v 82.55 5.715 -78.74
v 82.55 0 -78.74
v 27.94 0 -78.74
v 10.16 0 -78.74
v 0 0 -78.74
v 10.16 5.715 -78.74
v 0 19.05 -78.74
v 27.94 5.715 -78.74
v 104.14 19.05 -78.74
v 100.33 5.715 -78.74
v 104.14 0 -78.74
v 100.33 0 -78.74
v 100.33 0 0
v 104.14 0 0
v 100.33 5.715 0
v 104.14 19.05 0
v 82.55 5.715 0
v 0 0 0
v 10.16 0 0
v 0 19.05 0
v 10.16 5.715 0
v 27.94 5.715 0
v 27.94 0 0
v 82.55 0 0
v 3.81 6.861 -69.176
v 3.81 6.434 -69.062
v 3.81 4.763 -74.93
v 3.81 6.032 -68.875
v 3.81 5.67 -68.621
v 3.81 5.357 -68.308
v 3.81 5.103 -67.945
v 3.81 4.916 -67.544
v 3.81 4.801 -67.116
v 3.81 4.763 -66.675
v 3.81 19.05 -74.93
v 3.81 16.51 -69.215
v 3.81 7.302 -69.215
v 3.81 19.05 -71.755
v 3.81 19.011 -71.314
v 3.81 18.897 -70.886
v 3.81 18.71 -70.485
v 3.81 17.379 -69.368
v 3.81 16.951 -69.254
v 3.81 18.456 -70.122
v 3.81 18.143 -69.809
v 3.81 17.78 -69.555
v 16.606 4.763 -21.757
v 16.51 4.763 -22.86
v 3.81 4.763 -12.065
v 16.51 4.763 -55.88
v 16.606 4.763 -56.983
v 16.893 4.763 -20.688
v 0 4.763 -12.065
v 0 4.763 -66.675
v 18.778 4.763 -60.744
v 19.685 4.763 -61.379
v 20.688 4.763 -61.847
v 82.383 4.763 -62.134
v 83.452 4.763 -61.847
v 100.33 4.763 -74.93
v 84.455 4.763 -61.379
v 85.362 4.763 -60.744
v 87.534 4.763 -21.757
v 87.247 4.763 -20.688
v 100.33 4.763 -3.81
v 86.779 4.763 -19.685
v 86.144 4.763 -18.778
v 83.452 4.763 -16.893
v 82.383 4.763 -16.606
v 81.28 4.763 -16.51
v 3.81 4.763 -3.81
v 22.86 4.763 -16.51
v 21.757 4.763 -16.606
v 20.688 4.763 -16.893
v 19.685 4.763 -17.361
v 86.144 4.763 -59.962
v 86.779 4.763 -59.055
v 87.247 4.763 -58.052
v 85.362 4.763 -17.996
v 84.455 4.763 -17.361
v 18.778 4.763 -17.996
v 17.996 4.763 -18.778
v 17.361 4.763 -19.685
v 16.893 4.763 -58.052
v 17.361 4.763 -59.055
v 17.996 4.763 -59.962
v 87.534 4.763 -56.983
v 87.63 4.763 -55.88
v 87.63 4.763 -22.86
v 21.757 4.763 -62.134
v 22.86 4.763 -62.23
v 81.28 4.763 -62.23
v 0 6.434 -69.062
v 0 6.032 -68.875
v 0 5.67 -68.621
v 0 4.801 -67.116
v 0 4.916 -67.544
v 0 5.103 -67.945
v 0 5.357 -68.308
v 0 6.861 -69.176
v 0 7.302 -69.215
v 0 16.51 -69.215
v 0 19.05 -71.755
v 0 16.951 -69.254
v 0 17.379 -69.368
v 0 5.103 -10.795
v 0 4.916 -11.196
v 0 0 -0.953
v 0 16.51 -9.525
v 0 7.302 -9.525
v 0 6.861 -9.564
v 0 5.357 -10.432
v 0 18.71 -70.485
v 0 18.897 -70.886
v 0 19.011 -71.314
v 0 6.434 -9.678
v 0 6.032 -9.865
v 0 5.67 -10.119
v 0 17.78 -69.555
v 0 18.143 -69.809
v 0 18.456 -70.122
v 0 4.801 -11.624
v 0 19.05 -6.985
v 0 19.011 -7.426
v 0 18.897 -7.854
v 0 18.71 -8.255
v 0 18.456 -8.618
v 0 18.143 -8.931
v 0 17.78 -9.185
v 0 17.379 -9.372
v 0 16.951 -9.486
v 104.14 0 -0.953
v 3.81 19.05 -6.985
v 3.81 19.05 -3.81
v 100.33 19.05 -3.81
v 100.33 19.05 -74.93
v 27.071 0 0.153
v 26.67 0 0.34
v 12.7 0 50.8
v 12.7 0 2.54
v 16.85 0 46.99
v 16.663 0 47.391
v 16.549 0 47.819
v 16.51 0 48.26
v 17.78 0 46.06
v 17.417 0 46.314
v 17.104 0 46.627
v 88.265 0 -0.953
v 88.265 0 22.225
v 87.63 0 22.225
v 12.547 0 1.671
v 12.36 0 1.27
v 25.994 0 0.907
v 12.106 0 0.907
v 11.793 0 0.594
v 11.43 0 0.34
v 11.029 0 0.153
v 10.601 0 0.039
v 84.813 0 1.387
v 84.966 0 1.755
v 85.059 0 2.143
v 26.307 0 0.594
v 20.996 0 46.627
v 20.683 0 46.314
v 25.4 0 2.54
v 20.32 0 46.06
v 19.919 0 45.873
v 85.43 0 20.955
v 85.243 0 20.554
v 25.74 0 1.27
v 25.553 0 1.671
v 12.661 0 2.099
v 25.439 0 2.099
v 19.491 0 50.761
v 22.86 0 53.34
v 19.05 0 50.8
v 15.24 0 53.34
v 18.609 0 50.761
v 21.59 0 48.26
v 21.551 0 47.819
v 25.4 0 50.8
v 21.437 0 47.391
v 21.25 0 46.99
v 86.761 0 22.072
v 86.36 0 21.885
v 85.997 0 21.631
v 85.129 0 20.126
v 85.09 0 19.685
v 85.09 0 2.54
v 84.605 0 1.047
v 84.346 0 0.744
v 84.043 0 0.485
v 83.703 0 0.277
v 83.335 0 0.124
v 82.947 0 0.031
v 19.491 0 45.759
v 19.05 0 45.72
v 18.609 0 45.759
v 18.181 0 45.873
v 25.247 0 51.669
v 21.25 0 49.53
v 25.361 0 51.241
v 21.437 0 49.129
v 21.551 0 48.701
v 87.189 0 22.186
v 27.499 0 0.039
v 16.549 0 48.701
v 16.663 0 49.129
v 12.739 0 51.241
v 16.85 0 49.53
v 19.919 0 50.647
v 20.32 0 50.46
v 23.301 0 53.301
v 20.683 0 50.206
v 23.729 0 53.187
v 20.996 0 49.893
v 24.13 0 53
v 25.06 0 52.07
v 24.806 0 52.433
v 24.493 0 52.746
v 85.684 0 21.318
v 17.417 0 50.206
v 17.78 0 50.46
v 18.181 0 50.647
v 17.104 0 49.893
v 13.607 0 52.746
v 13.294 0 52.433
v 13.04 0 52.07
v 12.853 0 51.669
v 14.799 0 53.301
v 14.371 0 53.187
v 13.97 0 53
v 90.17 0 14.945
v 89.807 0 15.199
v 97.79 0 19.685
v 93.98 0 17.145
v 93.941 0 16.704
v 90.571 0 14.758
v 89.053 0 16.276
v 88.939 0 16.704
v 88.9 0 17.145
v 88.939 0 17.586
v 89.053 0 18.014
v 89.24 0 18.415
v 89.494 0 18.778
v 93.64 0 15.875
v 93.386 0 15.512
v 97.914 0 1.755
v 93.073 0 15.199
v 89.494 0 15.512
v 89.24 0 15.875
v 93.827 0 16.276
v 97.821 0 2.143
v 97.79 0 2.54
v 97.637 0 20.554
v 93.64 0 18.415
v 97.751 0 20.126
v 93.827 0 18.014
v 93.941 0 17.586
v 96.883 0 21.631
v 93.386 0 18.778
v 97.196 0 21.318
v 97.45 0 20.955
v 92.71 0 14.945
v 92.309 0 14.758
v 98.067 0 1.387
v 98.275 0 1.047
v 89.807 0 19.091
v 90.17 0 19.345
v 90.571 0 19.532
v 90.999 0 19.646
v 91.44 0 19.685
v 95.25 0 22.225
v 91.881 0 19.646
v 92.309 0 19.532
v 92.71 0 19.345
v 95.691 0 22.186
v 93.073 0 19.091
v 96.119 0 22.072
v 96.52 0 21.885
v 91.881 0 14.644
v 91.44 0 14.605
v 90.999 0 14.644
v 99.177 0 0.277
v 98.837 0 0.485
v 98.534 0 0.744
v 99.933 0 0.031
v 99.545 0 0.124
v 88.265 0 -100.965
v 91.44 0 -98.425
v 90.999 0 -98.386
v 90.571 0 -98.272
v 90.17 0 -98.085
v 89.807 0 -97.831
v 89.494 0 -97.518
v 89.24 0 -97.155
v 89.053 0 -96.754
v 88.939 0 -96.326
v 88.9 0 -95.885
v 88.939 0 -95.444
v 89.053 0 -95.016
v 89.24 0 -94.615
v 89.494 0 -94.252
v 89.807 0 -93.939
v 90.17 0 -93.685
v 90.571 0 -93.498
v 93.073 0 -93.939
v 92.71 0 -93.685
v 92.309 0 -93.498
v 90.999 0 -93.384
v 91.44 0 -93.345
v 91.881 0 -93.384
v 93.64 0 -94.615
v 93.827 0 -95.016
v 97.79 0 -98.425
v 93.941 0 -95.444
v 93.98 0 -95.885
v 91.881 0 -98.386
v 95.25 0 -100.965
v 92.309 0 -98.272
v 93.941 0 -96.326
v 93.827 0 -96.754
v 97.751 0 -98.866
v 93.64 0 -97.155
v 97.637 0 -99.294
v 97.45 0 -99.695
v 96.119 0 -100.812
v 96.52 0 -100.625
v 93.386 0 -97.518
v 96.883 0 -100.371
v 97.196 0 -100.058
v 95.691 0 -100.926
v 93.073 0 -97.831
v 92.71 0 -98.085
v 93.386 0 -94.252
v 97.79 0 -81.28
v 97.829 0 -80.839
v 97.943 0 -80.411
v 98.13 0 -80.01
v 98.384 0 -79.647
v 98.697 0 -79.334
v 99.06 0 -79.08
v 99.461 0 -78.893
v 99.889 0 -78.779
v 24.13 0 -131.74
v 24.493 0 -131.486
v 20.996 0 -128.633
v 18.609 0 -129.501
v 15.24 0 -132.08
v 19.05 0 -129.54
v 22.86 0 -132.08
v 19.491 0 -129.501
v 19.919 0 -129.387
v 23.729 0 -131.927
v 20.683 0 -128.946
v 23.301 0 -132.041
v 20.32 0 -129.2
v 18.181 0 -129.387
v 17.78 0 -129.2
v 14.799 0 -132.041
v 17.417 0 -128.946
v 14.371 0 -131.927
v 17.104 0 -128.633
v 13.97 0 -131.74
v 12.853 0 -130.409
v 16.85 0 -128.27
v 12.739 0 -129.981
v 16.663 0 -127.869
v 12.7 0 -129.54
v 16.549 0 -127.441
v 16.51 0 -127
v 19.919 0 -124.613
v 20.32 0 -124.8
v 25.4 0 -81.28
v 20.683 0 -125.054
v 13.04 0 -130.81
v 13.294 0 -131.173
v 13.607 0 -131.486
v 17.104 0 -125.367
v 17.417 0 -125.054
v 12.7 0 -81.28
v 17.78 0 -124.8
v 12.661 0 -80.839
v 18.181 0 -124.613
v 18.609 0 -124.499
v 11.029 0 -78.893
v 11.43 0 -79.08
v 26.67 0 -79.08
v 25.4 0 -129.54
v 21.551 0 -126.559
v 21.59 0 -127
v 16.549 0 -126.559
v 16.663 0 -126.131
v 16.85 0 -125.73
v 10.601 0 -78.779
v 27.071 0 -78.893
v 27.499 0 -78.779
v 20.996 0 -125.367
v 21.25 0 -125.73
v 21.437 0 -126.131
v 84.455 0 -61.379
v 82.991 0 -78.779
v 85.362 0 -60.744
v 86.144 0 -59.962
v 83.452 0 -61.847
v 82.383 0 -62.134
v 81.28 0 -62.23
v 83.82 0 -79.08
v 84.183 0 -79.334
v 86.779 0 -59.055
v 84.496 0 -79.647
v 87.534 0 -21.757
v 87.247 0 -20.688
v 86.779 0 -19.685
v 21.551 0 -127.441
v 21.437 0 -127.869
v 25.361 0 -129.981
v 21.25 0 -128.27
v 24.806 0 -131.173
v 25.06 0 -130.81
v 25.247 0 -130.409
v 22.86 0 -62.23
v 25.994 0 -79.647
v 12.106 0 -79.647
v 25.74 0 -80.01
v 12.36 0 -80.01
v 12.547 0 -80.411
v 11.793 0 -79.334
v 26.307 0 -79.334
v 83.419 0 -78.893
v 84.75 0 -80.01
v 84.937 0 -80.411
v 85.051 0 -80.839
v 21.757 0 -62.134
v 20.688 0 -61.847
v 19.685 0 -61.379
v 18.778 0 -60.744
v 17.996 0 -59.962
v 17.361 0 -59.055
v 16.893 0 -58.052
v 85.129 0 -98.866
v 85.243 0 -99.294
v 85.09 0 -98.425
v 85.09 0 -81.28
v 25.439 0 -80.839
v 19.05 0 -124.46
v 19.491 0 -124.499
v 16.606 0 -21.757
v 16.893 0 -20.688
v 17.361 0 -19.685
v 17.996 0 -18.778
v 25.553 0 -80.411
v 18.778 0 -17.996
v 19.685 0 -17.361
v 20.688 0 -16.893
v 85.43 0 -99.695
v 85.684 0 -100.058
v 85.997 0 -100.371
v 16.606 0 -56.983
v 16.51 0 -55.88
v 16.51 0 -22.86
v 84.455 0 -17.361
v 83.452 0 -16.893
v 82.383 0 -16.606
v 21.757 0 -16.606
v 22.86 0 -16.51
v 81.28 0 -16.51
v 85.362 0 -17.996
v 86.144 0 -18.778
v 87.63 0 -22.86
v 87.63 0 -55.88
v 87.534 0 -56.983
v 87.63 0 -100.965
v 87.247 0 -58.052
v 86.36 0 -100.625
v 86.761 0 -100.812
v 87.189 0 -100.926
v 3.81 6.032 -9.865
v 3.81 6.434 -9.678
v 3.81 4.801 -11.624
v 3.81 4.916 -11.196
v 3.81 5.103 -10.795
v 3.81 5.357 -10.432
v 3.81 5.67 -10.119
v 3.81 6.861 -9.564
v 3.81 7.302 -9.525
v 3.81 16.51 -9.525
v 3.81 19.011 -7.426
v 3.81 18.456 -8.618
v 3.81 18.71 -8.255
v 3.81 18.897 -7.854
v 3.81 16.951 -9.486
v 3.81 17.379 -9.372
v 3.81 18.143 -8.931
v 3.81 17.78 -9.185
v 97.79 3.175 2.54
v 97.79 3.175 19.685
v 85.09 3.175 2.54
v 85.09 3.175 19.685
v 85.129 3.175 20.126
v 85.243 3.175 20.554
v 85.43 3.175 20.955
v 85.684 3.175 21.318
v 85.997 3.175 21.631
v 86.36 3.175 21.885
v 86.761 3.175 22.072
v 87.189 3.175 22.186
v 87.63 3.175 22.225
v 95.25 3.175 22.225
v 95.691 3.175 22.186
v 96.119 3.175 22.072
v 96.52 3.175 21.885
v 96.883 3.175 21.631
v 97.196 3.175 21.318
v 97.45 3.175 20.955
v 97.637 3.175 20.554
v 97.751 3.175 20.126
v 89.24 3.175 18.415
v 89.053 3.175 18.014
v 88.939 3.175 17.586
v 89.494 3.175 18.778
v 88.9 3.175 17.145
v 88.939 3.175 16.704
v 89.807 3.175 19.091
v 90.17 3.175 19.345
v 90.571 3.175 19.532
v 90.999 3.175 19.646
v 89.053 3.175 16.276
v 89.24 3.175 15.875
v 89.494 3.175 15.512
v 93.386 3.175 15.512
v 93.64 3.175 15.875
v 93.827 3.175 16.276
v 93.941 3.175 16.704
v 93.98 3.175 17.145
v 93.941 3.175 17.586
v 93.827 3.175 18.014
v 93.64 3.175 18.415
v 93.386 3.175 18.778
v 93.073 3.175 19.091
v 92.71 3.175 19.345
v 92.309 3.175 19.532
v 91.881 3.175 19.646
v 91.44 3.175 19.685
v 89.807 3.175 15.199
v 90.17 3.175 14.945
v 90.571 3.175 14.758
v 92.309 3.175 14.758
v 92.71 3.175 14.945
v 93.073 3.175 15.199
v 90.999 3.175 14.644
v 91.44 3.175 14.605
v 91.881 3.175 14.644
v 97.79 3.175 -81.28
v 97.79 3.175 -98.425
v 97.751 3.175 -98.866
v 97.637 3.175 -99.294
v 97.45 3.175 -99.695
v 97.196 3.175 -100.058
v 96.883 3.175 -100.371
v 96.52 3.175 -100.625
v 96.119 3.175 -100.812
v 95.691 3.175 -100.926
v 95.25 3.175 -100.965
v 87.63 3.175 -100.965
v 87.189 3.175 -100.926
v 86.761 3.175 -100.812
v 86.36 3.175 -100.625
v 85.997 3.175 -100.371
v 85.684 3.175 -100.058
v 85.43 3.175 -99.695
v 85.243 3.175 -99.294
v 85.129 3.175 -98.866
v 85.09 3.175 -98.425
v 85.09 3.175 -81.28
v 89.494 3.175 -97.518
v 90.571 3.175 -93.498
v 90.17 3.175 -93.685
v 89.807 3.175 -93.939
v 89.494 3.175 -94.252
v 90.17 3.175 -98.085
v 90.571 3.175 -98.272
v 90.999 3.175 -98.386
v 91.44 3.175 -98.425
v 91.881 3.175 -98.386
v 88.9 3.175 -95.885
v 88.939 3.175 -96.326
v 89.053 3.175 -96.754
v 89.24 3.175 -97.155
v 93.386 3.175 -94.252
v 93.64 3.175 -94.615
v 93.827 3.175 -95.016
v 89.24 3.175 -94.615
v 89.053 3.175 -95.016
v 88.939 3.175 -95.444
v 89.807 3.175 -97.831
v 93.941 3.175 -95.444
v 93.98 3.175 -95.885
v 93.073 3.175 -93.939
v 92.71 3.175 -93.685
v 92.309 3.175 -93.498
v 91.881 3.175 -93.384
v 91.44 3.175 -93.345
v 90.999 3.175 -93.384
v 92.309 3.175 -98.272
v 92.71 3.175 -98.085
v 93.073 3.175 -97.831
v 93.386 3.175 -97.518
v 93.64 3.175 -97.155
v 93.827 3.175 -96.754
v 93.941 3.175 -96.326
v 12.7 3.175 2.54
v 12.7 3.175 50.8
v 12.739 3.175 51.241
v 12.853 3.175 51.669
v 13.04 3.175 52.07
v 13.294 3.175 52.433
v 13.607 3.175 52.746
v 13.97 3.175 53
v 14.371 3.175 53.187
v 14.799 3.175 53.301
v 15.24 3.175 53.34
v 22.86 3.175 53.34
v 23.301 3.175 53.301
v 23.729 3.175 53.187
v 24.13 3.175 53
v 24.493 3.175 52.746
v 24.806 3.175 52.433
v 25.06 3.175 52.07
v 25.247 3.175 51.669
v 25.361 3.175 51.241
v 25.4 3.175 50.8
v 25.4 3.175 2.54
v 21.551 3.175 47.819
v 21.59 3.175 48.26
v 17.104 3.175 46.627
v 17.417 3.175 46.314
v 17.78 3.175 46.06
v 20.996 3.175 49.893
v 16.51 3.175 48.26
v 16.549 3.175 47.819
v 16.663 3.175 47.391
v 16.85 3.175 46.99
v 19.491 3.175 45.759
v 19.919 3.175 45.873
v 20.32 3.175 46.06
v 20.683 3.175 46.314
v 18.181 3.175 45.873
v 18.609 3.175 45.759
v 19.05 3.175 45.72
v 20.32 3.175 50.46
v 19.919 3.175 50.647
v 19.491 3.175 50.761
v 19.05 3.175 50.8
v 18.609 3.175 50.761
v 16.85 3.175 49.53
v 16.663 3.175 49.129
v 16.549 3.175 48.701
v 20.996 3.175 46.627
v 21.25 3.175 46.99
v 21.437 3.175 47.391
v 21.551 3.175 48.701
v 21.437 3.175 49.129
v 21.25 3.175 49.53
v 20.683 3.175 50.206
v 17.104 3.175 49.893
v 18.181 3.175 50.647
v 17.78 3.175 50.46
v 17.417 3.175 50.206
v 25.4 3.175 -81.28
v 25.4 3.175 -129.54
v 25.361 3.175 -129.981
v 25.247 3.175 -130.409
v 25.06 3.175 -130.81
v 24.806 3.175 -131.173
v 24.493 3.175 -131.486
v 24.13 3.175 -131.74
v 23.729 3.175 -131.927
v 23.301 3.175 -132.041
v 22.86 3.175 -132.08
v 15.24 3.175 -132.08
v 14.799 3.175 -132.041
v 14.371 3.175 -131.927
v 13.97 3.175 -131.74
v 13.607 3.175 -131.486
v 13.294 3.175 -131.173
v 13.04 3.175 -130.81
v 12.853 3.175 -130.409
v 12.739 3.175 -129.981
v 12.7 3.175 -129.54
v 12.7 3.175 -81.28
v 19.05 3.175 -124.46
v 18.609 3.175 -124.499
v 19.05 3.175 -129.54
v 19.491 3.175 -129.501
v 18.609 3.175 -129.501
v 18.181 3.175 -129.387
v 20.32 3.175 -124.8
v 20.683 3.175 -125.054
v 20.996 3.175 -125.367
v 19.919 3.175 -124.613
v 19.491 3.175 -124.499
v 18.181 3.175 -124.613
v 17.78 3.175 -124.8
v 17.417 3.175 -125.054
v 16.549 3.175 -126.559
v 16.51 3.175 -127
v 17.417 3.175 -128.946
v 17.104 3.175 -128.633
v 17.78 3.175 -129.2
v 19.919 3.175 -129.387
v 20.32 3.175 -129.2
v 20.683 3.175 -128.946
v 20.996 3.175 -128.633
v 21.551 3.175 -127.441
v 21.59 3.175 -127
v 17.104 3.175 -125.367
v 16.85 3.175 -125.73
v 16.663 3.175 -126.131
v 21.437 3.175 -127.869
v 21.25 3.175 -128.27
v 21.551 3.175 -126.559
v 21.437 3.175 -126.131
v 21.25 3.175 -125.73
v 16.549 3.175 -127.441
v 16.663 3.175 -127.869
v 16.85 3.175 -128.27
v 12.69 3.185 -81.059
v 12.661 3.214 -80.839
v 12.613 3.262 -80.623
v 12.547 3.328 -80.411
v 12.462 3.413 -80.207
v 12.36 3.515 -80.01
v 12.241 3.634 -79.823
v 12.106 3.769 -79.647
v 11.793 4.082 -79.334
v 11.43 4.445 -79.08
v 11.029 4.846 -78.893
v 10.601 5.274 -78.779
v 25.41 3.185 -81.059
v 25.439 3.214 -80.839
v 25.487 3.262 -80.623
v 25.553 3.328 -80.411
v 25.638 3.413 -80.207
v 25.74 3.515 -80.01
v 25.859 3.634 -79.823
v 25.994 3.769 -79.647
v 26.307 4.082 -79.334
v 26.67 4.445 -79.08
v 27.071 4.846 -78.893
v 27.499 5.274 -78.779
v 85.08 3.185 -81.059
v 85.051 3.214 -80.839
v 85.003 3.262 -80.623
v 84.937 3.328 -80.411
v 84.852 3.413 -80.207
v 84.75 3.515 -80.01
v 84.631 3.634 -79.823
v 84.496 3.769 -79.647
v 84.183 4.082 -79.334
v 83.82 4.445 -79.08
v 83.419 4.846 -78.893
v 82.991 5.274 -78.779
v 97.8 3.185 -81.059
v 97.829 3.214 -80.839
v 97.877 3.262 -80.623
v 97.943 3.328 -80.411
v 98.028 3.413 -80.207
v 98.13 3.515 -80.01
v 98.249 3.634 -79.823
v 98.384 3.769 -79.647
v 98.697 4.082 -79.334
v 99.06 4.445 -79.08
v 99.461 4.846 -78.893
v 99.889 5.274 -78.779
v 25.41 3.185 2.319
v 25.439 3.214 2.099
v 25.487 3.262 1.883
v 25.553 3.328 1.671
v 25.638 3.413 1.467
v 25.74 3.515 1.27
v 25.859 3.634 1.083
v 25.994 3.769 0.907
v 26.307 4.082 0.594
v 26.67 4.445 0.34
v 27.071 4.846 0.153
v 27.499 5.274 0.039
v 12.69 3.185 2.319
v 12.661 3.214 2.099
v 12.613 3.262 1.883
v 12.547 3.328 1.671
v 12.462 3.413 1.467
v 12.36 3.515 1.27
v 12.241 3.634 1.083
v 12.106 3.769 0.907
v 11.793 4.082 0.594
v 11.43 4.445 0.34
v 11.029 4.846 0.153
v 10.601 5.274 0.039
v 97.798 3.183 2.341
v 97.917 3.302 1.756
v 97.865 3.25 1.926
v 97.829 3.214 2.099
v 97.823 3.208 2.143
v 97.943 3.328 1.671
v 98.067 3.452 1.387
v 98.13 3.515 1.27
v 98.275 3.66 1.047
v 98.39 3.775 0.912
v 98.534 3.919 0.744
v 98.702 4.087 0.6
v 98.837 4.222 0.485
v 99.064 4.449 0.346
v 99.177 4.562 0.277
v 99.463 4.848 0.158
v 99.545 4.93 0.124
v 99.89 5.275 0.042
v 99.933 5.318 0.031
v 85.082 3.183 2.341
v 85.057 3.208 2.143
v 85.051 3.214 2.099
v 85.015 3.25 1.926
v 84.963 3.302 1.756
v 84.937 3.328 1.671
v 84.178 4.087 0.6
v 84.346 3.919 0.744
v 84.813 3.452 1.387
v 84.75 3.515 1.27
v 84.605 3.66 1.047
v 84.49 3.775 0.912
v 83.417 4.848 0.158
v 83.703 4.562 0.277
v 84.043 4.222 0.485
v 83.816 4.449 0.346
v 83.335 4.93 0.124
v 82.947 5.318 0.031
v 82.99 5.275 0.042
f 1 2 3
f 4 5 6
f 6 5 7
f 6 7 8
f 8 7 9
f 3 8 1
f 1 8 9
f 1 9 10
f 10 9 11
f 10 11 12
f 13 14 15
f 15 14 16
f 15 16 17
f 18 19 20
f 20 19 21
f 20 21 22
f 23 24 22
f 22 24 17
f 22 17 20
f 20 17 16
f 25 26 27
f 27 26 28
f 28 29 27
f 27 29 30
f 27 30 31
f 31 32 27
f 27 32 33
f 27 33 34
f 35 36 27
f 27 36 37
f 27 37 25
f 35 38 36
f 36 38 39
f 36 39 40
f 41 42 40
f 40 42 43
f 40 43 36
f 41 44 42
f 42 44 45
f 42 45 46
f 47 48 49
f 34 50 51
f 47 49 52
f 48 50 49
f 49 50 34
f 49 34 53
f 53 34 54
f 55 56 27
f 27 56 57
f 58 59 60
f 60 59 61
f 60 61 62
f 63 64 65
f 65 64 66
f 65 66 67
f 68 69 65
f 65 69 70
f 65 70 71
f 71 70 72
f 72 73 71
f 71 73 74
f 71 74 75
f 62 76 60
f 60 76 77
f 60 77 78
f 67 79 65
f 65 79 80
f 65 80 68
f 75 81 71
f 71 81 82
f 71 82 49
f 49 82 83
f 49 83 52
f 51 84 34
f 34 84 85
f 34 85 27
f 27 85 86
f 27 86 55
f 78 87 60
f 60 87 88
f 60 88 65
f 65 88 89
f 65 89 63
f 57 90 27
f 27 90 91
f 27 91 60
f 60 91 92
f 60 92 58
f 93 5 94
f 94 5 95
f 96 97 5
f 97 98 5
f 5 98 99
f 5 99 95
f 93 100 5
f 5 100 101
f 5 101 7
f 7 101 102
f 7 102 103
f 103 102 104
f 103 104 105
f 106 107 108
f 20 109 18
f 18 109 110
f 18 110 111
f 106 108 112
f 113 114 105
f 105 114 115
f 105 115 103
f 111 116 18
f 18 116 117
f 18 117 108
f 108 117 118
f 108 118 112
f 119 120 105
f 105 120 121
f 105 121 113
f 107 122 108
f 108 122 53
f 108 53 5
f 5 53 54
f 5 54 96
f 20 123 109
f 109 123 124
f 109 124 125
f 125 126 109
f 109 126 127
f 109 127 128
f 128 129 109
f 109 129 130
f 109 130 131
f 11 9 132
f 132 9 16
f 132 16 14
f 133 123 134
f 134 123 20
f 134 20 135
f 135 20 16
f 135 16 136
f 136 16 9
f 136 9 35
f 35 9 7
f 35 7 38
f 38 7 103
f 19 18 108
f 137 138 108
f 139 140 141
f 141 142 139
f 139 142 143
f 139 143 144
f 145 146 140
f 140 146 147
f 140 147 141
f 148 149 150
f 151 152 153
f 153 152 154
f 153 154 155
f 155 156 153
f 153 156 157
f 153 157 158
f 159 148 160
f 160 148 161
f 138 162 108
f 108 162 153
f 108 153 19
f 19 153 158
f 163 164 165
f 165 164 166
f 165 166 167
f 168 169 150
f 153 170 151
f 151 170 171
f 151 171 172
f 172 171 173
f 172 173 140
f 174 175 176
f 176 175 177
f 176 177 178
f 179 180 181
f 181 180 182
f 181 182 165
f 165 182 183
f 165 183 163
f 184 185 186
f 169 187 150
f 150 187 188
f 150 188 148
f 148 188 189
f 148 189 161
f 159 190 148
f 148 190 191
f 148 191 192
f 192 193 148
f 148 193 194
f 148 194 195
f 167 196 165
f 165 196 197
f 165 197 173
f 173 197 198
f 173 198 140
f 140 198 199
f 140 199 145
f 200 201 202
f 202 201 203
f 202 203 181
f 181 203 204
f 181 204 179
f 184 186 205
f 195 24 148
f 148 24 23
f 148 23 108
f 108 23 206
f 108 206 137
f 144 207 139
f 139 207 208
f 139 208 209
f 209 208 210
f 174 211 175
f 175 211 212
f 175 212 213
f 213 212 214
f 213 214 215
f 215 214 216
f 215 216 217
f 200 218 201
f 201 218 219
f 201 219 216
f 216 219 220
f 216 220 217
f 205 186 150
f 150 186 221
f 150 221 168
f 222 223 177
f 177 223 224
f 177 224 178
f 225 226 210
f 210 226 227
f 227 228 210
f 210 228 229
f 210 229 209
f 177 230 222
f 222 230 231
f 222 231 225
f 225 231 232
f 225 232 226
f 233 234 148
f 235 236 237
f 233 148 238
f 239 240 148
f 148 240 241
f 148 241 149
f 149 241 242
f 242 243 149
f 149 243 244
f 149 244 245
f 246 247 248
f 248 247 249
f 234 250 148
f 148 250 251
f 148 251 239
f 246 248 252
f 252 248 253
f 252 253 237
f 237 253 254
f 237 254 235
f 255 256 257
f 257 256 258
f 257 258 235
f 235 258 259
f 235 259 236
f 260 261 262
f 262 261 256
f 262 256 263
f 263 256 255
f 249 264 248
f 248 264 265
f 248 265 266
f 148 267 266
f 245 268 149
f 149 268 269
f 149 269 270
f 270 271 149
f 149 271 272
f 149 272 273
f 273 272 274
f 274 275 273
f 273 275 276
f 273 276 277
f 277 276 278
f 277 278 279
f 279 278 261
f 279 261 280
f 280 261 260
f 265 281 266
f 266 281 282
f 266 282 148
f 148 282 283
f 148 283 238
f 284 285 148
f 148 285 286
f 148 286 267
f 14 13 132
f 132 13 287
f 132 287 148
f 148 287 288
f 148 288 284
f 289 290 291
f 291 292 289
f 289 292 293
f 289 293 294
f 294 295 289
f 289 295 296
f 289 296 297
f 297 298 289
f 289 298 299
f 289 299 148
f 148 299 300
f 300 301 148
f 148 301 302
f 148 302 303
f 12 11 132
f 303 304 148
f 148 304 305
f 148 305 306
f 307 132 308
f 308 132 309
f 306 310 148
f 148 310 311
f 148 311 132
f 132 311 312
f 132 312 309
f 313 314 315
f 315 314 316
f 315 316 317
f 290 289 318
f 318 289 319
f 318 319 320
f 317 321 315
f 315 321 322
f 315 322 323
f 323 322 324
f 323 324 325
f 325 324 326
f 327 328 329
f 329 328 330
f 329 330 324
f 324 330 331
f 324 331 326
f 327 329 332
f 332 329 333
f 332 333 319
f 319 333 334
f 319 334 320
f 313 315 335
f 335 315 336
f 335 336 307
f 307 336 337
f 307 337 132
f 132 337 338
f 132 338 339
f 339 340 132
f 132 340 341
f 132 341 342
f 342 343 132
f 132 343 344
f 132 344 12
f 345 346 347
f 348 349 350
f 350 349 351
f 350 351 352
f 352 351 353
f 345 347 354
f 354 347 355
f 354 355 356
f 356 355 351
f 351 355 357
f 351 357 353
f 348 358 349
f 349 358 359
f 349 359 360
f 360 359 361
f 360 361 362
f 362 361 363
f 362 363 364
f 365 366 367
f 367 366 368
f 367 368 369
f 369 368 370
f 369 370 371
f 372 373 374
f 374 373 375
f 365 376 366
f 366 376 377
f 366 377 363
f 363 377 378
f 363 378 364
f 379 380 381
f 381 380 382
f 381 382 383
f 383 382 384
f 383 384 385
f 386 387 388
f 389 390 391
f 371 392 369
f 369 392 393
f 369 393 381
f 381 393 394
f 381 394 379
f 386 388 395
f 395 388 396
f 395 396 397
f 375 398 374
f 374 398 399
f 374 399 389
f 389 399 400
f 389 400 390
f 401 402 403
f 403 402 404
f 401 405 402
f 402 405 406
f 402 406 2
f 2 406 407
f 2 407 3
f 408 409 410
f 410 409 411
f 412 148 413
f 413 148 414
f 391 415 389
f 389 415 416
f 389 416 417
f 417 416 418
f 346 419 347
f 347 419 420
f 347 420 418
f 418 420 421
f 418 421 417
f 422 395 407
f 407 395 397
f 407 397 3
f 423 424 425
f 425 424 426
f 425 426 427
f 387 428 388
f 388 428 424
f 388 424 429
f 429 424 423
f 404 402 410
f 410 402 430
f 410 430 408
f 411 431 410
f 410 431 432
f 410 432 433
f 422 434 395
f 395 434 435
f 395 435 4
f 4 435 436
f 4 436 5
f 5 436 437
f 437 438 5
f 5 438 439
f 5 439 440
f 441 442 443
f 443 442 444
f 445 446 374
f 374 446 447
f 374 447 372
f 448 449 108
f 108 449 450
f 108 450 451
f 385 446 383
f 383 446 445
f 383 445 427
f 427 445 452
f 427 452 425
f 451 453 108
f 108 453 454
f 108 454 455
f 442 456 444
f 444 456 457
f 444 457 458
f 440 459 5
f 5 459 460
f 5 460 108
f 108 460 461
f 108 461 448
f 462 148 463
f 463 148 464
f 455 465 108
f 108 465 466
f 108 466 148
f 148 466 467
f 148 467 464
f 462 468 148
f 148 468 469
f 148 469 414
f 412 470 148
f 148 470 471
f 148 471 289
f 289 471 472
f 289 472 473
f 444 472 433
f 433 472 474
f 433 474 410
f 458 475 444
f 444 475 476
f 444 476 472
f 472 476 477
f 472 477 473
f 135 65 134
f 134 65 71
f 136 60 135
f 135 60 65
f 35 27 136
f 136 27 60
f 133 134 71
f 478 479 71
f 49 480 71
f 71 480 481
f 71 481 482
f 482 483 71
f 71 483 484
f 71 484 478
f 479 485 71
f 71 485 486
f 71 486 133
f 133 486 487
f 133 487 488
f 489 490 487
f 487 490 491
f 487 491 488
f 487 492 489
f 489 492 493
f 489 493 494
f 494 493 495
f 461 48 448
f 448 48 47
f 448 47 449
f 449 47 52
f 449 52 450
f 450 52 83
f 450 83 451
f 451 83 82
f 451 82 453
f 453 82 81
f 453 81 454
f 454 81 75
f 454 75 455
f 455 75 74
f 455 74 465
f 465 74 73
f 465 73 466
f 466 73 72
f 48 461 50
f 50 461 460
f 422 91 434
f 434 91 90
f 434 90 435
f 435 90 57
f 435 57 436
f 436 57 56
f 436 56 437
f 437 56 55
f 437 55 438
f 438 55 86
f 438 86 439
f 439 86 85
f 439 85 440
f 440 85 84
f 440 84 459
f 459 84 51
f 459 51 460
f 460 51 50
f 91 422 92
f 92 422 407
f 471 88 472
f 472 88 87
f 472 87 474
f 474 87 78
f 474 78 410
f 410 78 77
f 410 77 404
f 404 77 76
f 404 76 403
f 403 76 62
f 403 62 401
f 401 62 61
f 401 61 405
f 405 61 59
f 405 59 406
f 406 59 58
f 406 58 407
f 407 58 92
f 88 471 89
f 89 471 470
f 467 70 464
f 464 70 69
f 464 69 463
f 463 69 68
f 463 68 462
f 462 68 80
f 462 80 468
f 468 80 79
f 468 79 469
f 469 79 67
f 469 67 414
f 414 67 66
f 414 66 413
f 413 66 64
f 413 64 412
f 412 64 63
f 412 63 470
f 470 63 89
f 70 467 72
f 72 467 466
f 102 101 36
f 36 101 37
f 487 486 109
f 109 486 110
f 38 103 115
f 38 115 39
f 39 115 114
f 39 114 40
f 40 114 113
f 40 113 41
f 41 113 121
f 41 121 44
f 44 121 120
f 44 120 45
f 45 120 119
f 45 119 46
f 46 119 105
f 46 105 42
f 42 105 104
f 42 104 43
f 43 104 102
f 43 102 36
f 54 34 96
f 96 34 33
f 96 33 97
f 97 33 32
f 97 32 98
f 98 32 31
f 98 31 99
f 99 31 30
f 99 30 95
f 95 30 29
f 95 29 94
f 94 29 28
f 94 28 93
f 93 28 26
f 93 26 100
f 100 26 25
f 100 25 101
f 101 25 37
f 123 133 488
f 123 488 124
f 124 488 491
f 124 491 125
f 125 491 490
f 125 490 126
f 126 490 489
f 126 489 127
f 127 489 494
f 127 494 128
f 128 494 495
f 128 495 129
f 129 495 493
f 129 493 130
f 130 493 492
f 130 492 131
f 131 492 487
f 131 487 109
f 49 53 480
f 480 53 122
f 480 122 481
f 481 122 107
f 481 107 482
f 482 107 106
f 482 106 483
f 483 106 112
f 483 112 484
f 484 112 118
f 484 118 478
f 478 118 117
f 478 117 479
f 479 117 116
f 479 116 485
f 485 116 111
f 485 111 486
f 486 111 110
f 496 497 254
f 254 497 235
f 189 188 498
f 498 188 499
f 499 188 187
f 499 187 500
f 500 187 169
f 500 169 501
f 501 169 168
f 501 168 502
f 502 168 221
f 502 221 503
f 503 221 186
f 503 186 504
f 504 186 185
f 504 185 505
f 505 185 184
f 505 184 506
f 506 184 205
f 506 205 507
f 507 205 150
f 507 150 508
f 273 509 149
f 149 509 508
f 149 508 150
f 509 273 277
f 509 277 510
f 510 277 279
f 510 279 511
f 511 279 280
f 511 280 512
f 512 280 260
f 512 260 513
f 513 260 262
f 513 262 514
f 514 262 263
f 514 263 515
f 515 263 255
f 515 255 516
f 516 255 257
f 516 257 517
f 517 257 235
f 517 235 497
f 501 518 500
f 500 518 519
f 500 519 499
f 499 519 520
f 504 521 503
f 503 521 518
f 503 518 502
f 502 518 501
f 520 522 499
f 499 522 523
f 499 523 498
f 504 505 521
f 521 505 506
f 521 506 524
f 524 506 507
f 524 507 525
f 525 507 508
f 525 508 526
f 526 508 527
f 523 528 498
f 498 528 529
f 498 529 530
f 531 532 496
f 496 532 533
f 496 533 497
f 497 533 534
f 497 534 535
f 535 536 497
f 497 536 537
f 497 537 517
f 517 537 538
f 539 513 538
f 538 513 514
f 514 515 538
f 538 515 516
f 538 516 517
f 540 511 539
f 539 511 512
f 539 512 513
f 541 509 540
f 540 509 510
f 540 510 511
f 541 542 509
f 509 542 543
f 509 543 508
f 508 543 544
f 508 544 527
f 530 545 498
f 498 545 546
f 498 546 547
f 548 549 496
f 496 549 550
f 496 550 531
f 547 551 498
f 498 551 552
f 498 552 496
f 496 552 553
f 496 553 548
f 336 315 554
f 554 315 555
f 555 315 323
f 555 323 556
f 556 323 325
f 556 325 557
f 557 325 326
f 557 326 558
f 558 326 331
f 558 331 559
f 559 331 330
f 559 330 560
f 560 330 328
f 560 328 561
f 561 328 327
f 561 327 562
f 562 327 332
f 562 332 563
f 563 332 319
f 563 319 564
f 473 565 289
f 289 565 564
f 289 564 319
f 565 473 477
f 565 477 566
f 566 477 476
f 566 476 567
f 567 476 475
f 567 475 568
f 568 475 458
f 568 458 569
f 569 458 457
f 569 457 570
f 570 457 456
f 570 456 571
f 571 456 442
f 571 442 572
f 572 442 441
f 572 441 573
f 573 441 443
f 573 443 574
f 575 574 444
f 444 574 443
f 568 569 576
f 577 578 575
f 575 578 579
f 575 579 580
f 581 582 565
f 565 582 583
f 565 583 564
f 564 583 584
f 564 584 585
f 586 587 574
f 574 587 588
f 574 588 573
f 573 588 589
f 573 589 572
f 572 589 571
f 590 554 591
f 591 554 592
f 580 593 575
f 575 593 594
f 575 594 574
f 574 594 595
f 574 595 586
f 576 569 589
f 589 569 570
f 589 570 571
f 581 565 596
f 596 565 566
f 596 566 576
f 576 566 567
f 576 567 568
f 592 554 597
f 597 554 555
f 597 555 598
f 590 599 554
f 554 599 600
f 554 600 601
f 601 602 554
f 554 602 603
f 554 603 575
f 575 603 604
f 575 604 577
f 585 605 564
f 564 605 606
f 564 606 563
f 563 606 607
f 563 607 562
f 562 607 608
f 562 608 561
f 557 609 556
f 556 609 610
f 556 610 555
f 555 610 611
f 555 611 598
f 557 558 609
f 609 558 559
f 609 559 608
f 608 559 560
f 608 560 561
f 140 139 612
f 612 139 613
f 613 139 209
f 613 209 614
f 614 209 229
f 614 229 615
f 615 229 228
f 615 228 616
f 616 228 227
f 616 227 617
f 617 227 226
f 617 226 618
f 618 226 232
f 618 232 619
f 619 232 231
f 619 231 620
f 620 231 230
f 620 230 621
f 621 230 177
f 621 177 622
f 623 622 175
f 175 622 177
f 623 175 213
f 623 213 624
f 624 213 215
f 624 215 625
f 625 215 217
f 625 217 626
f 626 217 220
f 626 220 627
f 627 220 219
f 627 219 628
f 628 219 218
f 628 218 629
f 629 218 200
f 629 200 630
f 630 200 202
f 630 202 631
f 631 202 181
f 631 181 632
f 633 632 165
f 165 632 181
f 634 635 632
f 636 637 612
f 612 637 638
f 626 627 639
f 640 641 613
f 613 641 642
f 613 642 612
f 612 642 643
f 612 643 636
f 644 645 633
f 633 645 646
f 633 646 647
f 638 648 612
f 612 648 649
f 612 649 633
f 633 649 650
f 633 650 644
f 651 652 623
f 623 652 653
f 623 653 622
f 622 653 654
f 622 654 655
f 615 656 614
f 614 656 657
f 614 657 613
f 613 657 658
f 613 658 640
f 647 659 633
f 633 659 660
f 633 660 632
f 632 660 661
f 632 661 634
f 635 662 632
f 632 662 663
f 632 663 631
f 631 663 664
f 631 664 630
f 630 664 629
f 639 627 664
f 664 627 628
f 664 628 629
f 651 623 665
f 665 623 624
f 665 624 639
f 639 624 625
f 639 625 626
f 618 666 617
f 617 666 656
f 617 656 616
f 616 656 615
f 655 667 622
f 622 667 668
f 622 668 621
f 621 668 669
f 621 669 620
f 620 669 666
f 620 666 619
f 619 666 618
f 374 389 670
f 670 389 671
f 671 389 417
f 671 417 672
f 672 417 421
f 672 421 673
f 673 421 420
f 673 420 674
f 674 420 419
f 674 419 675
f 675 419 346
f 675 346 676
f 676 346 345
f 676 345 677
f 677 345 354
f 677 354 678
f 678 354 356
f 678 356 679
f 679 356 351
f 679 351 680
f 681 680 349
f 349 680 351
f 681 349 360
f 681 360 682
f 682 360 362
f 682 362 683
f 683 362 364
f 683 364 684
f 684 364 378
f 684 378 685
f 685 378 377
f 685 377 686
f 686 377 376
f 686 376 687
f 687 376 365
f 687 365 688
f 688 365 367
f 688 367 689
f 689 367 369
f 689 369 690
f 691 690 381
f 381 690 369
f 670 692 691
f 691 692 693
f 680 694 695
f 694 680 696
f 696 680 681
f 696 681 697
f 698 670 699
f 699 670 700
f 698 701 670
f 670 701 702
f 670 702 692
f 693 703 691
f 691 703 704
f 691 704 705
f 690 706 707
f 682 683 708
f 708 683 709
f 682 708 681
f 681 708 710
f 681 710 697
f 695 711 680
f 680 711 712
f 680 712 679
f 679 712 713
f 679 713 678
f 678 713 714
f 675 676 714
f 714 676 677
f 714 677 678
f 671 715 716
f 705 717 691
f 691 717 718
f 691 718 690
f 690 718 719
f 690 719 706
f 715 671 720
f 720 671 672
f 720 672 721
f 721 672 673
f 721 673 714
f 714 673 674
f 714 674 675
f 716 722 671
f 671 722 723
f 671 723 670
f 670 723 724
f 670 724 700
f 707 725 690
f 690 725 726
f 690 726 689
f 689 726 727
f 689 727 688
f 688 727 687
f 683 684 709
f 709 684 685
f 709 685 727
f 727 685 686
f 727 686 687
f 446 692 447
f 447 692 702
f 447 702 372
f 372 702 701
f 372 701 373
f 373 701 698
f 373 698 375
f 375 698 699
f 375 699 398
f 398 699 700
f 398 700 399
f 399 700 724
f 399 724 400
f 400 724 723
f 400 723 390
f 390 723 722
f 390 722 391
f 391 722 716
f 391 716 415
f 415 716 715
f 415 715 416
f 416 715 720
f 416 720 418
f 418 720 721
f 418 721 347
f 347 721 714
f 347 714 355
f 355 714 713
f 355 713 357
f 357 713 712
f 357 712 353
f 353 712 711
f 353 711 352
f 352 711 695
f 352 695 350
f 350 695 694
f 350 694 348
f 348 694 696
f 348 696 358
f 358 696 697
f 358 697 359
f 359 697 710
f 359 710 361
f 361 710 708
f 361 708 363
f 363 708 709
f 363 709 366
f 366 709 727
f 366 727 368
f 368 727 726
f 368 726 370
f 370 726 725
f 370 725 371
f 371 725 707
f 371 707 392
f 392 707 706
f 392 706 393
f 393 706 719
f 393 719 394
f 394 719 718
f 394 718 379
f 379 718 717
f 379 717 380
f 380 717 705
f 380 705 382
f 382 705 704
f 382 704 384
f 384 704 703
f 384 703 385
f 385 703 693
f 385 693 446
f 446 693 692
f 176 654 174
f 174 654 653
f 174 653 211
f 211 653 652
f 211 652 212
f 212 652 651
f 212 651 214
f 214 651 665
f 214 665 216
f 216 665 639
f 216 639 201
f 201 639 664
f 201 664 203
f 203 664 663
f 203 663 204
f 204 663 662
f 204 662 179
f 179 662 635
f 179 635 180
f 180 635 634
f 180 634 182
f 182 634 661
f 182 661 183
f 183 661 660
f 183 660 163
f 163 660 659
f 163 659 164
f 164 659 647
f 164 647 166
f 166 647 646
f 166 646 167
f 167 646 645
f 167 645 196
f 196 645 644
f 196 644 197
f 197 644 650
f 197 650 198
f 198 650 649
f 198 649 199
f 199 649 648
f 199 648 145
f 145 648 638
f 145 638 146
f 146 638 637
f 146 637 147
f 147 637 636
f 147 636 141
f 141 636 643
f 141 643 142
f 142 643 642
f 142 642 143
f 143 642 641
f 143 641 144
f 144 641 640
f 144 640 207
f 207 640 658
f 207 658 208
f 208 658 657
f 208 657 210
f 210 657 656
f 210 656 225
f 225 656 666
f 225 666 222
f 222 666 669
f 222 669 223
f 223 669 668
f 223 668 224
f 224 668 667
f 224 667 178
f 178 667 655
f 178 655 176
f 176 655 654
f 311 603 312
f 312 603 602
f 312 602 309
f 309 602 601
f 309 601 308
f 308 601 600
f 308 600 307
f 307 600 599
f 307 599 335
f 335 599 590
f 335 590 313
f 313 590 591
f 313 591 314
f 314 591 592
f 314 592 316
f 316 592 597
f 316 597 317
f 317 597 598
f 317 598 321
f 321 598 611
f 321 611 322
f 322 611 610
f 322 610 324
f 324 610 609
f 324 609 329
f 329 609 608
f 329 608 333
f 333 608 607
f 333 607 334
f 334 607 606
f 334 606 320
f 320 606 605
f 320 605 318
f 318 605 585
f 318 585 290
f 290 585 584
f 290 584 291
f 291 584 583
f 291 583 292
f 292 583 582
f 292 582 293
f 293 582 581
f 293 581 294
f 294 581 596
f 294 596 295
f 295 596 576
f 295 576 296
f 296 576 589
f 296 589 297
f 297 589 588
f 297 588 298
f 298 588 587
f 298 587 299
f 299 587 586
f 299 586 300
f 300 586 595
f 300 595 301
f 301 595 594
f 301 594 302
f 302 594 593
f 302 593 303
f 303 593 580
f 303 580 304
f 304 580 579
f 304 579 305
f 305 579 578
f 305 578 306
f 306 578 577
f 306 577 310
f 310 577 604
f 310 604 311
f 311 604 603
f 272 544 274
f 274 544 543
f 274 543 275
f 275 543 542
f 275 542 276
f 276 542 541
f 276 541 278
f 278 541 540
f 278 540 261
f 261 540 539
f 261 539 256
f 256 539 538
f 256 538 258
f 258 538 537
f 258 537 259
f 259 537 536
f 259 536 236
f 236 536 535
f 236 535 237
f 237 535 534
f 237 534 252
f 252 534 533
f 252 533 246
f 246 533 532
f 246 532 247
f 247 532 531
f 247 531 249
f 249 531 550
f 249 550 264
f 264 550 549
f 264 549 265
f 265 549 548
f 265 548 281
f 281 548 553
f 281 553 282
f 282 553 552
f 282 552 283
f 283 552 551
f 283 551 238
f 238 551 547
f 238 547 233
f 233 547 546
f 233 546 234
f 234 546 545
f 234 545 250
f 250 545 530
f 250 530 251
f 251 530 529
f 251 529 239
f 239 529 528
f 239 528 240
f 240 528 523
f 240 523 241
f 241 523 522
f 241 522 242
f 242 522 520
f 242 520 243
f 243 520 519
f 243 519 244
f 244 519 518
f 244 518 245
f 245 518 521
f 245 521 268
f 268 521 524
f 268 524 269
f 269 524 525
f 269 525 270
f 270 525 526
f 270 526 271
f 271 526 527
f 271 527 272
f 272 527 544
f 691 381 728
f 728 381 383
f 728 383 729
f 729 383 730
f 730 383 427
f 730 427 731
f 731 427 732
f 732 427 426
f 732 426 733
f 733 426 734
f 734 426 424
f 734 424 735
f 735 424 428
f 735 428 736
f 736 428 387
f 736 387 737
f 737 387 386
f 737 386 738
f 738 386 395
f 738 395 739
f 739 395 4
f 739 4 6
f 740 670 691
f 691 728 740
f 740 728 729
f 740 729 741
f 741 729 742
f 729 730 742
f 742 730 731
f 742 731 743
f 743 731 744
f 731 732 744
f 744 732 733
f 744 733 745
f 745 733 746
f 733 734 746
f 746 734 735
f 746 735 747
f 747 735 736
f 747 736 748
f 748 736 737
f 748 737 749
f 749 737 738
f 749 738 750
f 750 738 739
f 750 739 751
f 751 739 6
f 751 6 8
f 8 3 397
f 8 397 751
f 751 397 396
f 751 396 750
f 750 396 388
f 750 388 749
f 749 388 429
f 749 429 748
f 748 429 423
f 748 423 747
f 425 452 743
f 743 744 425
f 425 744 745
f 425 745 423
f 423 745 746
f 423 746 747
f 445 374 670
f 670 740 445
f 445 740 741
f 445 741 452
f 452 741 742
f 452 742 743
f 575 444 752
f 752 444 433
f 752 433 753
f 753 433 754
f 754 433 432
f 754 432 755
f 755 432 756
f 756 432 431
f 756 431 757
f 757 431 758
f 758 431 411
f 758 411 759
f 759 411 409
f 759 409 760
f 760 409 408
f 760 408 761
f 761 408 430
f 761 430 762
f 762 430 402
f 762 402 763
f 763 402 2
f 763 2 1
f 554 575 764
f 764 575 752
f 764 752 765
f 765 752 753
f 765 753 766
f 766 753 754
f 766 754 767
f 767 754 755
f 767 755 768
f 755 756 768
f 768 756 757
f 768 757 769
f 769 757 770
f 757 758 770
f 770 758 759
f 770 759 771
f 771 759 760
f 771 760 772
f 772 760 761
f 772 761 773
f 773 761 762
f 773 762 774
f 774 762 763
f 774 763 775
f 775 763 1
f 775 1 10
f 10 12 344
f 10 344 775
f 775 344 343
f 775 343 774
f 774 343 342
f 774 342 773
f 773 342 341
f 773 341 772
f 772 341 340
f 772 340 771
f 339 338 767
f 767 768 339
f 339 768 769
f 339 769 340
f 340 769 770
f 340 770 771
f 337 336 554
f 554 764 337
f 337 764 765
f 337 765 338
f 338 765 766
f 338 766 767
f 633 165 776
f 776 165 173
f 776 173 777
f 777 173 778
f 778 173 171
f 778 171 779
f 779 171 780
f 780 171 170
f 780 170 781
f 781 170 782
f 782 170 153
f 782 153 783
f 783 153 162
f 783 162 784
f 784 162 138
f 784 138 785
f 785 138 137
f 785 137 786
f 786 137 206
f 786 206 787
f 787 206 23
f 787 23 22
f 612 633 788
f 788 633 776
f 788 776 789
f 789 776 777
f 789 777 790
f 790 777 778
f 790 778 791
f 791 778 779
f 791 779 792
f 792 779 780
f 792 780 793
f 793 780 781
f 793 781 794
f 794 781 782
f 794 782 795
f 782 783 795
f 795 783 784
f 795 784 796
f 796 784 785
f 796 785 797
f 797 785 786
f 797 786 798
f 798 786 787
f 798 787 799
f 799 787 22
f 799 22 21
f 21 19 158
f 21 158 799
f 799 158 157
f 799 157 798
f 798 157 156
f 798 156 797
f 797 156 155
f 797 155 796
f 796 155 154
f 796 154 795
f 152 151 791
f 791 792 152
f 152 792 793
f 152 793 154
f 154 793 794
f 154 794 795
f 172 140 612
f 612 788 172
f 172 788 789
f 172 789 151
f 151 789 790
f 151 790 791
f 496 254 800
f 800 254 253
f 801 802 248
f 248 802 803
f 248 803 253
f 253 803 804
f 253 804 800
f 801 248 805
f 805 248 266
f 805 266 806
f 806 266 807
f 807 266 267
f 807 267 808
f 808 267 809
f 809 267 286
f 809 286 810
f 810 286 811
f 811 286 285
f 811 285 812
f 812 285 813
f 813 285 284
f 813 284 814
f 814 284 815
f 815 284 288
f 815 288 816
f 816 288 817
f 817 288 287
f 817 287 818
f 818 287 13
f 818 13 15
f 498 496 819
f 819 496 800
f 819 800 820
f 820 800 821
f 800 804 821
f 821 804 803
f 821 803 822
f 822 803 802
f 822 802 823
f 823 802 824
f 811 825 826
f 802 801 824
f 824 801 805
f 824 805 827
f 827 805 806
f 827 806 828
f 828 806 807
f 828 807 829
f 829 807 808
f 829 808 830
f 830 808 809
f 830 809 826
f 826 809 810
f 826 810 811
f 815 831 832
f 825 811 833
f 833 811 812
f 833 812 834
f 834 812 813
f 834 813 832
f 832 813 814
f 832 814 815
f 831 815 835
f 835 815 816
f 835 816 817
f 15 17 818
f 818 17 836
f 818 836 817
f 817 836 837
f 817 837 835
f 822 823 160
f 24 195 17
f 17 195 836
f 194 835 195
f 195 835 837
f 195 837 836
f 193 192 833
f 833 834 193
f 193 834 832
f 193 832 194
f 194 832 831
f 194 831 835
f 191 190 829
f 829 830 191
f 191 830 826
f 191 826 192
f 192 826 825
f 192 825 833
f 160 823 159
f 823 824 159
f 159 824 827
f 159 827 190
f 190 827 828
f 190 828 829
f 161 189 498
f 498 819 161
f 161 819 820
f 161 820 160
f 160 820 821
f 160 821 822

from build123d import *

# Parameters (mm, degrees)
SKETCH1_W           = 104.14
SKETCH1_H           = 78.74
BOSS_EXTRUDE1_DEPTH = 19.05
SKETCH2_W           = 96.52
SKETCH2_H           = 71.12
CUT_EXTRUDE1_DEPTH  = 14.2875
CUT_EXTRUDE2_REACH  = 6.763
SKETCH4_W           = 3.81
SKETCH4_H           = 59.69
CUT_EXTRUDE3_DEPTH  = 14.2875
FILLET1_R           = 2.54
BOSS_EXTRUDE2_DEPTH = 3.175
CUT_EXTRUDE4_REACH  = 5.175
SKETCH6_R           = 2.54
FILLET2_R           = 2.54


with BuildPart() as part:
    # Sketch1 → Boss-Extrude1 (new body)
    with BuildSketch(Plane(origin=(0, 0, 0), x_dir=(1, 0, 0), z_dir=(0, 1, 0))):
        with Locations((52.07, 39.37)):
            Rectangle(SKETCH1_W, SKETCH1_H)
    extrude(amount=BOSS_EXTRUDE1_DEPTH)

    # Sketch2 → Cut-Extrude1 (cut)
    with BuildSketch(Plane(origin=(0, 19.05, 0), x_dir=(1, 0, 0), z_dir=(0, 1, 0))):
        with Locations((52.07, 39.37)):
            Rectangle(SKETCH2_W, SKETCH2_H)
    extrude(amount=-CUT_EXTRUDE1_DEPTH, mode=Mode.SUBTRACT)

    # Sketch3 → Cut-Extrude2 (cut, up to next)
    with BuildSketch(Plane(origin=(0, 4.7625, 0), x_dir=(1, 0, 0), z_dir=(0, 1, 0)), mode=Mode.PRIVATE) as cut_extrude2_sk1:
        with BuildLine():
            Line((22.86, 62.23), (81.28, 62.23))
            ThreePointArc((81.28, 62.23), (85.770128061, 60.370128061), (87.63, 55.88))
            Line((87.63, 55.88), (87.63, 22.86))
            ThreePointArc((87.63, 22.86), (85.770128061, 18.369871939), (81.28, 16.51))
            Line((81.28, 16.51), (22.86, 16.51))
            ThreePointArc((22.86, 16.51), (18.369871939, 18.369871939), (16.51, 22.86))
            Line((16.51, 22.86), (16.51, 55.88))
            ThreePointArc((16.51, 55.88), (18.369871939, 60.370128061), (22.86, 62.23))
        make_face()
    cut_extrude2_tool1 = extrude(cut_extrude2_sk1.sketch, amount=-CUT_EXTRUDE2_REACH, mode=Mode.PRIVATE) & part.part
    add(cut_extrude2_tool1.solids().sort_by_distance((52.07, 4.7625, -39.37))[0], mode=Mode.SUBTRACT)

    # Sketch4 → Cut-Extrude3 (cut)
    with BuildSketch(Plane(origin=(0, 19.05, 0), x_dir=(1, 0, 0), z_dir=(0, 1, 0))):
        with Locations((1.905, 39.37)):
            Rectangle(SKETCH4_W, SKETCH4_H)
    extrude(amount=-CUT_EXTRUDE3_DEPTH, mode=Mode.SUBTRACT)

    # Fillet1
    fillet1_edges = [part.edges().sort_by_distance(p)[0] for p in [
        (1.905, 19.05, -69.215),
        (1.905, 19.05, -9.525),
        (1.905, 4.7625, -69.215),
        (1.905, 4.7625, -9.525),
    ]]
    fillet(fillet1_edges, radius=FILLET1_R)

    # Sketch5 → Boss-Extrude2 (add)
    with BuildSketch(Plane.XZ):
        with BuildLine():
            Line((97.79, 0), (85.09, 0))
            Line((85.09, 0), (85.09, 19.685))
            ThreePointArc((85.09, 19.685), (85.833948776, 21.481051224), (87.63, 22.225))
            Line((87.63, 22.225), (95.25, 22.225))
            ThreePointArc((95.25, 22.225), (97.046051224, 21.481051224), (97.79, 19.685))
            Line((97.79, 19.685), (97.79, 0))
        make_face()
        with BuildLine():
            Line((85.09, -78.74), (85.09, -98.425))
            ThreePointArc((85.09, -98.425), (85.833948776, -100.221051224), (87.63, -100.965))
            Line((87.63, -100.965), (95.25, -100.965))
            ThreePointArc((95.25, -100.965), (97.046051224, -100.221051224), (97.79, -98.425))
            Line((97.79, -98.425), (97.79, -78.74))
            Line((97.79, -78.74), (85.09, -78.74))
        make_face()
        with BuildLine():
            Line((12.7, 0), (25.4, 0))
            Line((25.4, 0), (25.4, 50.8))
            ThreePointArc((25.4, 50.8), (24.656051224, 52.596051224), (22.86, 53.34))
            Line((22.86, 53.34), (15.24, 53.34))
            ThreePointArc((15.24, 53.34), (13.443948776, 52.596051224), (12.7, 50.8))
            Line((12.7, 50.8), (12.7, 0))
        make_face()
        with BuildLine():
            Line((25.4, -78.74), (25.4, -129.54))
            ThreePointArc((25.4, -129.54), (24.656051224, -131.336051224), (22.86, -132.08))
            Line((22.86, -132.08), (15.24, -132.08))
            ThreePointArc((15.24, -132.08), (13.443948776, -131.336051224), (12.7, -129.54))
            Line((12.7, -129.54), (12.7, -78.74))
            Line((12.7, -78.74), (25.4, -78.74))
        make_face()
    extrude(amount=-BOSS_EXTRUDE2_DEPTH)

    # Sketch6 → Cut-Extrude4 (cut, up to next)
    with BuildSketch(Plane(origin=(0, 3.175, 0), x_dir=(1, 0, 0), z_dir=(0, 1, 0)), mode=Mode.PRIVATE) as cut_extrude4_sk1:
        with Locations((19.05, 127)):
            Circle(SKETCH6_R)
    cut_extrude4_tool1 = extrude(cut_extrude4_sk1.sketch, amount=-CUT_EXTRUDE4_REACH, mode=Mode.PRIVATE) & part.part
    add(cut_extrude4_tool1.solids().sort_by_distance((19.05, 3.175, -127))[0], mode=Mode.SUBTRACT)
    # Sketch6 → Cut-Extrude4 (cut, up to next)
    with BuildSketch(Plane(origin=(0, 3.175, 0), x_dir=(1, 0, 0), z_dir=(0, 1, 0)), mode=Mode.PRIVATE) as cut_extrude4_sk2:
        with Locations((19.05, -48.26)):
            Circle(SKETCH6_R)
    cut_extrude4_tool2 = extrude(cut_extrude4_sk2.sketch, amount=-CUT_EXTRUDE4_REACH, mode=Mode.PRIVATE) & part.part
    add(cut_extrude4_tool2.solids().sort_by_distance((19.05, 3.175, 48.26))[0], mode=Mode.SUBTRACT)
    # Sketch6 → Cut-Extrude4 (cut, up to next)
    with BuildSketch(Plane(origin=(0, 3.175, 0), x_dir=(1, 0, 0), z_dir=(0, 1, 0)), mode=Mode.PRIVATE) as cut_extrude4_sk3:
        with Locations((91.44, -17.145)):
            Circle(SKETCH6_R)
    cut_extrude4_tool3 = extrude(cut_extrude4_sk3.sketch, amount=-CUT_EXTRUDE4_REACH, mode=Mode.PRIVATE) & part.part
    add(cut_extrude4_tool3.solids().sort_by_distance((91.44, 3.175, 17.145))[0], mode=Mode.SUBTRACT)
    # Sketch6 → Cut-Extrude4 (cut, up to next)
    with BuildSketch(Plane(origin=(0, 3.175, 0), x_dir=(1, 0, 0), z_dir=(0, 1, 0)), mode=Mode.PRIVATE) as cut_extrude4_sk4:
        with Locations((91.44, 95.885)):
            Circle(SKETCH6_R)
    cut_extrude4_tool4 = extrude(cut_extrude4_sk4.sketch, amount=-CUT_EXTRUDE4_REACH, mode=Mode.PRIVATE) & part.part
    add(cut_extrude4_tool4.solids().sort_by_distance((91.44, 3.175, -95.885))[0], mode=Mode.SUBTRACT)

    # Fillet2
    fillet2_edges = [part.edges().sort_by_distance(p)[0] for p in [
        (91.44, 3.175, 0),
        (97.79, 1.5875, 0),
        (85.09, 1.5875, 0),
        (91.44, 3.175, -78.74),
        (85.09, 1.5875, -78.74),
        (97.79, 1.5875, -78.74),
        (12.7, 1.5875, 0),
        (19.05, 3.175, 0),
        (25.4, 1.5875, 0),
        (19.05, 3.175, -78.74),
        (12.7, 1.5875, -78.74),
        (25.4, 1.5875, -78.74),
    ]]
    fillet(fillet2_edges, radius=FILLET2_R)


solid = part.part
